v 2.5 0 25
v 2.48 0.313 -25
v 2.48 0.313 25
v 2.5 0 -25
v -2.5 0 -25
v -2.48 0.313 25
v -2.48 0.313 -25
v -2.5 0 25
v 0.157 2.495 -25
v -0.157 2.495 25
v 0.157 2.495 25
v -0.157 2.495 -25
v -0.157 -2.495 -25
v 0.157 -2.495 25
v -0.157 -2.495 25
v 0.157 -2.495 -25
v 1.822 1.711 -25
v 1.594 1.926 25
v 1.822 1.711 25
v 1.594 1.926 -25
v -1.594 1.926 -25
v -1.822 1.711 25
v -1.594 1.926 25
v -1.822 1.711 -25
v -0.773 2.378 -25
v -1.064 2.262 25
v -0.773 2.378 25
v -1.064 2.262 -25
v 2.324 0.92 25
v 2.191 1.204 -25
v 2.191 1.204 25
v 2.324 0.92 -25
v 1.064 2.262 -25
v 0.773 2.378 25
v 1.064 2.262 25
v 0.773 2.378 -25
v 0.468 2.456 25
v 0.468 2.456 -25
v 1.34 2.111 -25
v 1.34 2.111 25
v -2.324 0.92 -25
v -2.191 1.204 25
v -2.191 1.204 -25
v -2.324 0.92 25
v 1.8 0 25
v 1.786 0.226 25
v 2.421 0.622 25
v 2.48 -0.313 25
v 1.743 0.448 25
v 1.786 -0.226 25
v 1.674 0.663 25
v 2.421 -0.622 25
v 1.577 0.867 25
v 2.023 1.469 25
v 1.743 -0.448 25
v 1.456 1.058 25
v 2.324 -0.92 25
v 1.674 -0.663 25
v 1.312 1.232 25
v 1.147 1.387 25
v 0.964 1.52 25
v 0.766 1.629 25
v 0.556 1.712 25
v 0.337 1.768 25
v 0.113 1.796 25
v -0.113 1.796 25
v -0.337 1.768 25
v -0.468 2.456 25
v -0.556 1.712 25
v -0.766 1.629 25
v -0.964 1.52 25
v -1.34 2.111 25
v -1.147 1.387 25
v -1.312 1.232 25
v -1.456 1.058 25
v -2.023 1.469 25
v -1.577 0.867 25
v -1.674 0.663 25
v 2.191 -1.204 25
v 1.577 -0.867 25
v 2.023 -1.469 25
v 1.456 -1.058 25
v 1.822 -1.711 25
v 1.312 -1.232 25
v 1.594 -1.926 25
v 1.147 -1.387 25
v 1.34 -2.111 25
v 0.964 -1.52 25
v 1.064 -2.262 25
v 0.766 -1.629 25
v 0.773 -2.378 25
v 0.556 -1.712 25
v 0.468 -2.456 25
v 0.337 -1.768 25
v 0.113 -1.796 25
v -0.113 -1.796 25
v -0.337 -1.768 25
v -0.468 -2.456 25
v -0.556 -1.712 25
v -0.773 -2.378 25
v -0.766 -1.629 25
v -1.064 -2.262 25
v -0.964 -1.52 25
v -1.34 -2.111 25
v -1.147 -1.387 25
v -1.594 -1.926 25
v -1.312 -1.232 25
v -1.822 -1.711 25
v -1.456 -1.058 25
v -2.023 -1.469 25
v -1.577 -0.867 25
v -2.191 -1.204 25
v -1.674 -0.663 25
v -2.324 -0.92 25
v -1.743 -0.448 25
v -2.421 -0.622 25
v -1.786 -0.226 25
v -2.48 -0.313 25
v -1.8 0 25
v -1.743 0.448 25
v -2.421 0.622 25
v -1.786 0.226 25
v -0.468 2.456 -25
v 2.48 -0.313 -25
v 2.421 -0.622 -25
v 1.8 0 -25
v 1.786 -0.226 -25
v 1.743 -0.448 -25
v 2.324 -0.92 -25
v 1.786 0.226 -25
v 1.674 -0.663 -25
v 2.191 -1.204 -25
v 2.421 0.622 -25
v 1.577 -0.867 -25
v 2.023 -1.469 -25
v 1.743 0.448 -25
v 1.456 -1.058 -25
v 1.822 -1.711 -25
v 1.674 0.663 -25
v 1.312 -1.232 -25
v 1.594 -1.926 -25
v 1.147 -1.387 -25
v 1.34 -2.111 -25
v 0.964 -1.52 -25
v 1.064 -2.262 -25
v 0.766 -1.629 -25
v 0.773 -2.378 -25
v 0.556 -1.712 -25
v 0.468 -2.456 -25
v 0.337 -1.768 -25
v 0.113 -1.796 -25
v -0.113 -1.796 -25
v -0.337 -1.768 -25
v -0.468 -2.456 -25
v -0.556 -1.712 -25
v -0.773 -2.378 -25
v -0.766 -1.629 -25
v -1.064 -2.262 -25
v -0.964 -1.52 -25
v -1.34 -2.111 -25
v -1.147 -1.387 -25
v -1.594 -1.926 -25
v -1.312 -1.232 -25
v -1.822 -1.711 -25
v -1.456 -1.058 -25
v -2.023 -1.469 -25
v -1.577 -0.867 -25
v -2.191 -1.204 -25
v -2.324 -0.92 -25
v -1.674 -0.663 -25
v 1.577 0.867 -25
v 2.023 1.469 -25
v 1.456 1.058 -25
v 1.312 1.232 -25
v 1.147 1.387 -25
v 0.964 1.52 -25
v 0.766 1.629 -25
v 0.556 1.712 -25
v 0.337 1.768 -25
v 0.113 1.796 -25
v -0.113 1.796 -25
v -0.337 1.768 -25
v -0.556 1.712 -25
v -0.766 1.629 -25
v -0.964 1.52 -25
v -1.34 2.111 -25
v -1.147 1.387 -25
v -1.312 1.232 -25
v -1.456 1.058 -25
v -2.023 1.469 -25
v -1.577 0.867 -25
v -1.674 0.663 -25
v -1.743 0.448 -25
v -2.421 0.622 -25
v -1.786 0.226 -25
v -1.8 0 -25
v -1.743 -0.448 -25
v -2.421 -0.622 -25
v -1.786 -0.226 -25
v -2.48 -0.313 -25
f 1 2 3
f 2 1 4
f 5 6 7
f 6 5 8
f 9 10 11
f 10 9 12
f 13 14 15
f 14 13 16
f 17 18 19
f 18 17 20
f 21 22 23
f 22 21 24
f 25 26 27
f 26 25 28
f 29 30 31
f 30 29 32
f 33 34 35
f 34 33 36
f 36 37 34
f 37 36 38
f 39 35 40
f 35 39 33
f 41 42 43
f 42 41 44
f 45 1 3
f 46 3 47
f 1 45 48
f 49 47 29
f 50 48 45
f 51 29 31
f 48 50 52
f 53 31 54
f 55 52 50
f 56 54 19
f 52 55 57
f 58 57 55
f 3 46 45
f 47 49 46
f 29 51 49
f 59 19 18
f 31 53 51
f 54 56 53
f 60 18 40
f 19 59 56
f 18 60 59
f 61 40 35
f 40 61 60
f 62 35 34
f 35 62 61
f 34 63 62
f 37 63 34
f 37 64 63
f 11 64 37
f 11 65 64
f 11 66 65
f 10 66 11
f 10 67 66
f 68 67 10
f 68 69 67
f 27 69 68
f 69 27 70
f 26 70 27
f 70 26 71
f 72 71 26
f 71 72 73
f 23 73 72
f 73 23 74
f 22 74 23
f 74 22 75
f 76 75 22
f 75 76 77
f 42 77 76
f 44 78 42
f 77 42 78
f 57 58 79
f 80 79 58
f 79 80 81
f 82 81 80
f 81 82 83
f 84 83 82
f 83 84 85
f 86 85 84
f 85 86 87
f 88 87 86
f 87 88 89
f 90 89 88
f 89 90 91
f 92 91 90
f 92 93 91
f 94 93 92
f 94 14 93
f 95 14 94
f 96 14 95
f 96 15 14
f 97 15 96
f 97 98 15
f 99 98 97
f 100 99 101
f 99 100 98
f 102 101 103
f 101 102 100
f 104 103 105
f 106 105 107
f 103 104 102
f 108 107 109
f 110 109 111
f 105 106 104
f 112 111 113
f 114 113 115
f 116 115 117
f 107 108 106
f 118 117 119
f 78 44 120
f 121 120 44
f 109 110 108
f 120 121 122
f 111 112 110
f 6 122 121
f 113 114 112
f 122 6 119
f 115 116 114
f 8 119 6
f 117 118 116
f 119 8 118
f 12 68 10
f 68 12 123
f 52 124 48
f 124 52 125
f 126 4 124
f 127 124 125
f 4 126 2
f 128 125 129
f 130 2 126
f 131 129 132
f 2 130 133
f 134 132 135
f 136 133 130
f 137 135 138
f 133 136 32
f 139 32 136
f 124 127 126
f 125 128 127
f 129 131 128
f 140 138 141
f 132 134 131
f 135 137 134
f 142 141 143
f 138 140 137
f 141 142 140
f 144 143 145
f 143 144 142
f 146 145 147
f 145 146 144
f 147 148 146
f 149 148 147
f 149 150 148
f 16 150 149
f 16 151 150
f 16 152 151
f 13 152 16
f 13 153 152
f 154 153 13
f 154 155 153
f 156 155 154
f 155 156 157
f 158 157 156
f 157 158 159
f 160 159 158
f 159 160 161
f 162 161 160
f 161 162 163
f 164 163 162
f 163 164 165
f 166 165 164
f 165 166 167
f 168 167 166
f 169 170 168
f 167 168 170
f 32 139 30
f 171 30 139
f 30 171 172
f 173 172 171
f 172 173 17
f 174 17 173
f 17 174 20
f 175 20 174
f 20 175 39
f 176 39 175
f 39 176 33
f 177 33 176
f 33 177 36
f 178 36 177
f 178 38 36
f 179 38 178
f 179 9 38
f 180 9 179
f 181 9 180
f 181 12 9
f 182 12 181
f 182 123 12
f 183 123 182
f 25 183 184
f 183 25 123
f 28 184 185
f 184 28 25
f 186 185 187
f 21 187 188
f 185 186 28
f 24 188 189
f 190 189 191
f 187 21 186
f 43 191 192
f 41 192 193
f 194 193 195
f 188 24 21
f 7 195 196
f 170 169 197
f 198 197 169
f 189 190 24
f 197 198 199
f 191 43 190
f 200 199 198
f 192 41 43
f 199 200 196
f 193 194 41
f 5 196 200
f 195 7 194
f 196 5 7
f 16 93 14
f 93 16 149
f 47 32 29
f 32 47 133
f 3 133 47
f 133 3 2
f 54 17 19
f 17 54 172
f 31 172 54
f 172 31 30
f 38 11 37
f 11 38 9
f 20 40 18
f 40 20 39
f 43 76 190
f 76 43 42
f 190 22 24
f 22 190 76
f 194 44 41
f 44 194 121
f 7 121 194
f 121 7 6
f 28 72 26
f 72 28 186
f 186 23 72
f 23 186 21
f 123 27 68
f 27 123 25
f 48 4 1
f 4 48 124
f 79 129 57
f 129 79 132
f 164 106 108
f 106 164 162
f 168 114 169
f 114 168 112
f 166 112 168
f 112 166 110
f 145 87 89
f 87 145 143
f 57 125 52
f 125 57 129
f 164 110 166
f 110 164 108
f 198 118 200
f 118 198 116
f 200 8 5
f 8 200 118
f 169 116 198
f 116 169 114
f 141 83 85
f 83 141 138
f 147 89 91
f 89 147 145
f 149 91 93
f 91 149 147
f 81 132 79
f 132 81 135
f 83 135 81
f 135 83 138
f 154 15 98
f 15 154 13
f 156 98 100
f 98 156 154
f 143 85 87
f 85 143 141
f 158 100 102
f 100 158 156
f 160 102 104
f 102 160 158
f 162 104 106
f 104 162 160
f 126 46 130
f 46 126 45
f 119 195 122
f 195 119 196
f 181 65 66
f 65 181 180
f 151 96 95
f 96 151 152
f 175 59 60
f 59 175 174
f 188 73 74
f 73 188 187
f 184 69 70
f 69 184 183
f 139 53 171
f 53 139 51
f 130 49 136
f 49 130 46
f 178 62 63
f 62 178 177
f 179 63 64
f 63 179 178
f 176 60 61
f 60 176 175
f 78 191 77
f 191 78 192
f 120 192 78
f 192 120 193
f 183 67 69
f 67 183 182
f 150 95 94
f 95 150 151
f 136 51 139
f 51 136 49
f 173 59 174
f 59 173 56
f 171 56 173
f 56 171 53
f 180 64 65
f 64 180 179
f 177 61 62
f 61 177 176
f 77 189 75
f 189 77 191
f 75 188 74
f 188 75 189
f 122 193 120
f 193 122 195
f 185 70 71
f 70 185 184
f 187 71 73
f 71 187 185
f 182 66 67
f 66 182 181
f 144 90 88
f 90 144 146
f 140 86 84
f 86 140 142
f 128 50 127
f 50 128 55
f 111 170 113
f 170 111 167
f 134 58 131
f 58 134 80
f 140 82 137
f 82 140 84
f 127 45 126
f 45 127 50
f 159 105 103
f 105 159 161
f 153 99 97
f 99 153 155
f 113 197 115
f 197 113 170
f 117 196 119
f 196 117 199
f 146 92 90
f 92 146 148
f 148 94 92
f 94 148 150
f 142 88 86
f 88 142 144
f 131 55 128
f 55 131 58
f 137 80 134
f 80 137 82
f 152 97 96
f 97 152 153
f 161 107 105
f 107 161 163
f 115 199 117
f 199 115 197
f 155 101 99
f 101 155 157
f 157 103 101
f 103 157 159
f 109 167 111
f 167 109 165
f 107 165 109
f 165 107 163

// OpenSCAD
$fn = 50;


difference() {
	union() {
		translate(v = [0, 0, -25.0000000000]) {
			cylinder(h = 50, r = 2.5000000000);
		}
	}
	union() {
		translate(v = [0, 0, -100.0000000000]) {
			cylinder(h = 200, r = 1.8000000000);
		}
	}
}
